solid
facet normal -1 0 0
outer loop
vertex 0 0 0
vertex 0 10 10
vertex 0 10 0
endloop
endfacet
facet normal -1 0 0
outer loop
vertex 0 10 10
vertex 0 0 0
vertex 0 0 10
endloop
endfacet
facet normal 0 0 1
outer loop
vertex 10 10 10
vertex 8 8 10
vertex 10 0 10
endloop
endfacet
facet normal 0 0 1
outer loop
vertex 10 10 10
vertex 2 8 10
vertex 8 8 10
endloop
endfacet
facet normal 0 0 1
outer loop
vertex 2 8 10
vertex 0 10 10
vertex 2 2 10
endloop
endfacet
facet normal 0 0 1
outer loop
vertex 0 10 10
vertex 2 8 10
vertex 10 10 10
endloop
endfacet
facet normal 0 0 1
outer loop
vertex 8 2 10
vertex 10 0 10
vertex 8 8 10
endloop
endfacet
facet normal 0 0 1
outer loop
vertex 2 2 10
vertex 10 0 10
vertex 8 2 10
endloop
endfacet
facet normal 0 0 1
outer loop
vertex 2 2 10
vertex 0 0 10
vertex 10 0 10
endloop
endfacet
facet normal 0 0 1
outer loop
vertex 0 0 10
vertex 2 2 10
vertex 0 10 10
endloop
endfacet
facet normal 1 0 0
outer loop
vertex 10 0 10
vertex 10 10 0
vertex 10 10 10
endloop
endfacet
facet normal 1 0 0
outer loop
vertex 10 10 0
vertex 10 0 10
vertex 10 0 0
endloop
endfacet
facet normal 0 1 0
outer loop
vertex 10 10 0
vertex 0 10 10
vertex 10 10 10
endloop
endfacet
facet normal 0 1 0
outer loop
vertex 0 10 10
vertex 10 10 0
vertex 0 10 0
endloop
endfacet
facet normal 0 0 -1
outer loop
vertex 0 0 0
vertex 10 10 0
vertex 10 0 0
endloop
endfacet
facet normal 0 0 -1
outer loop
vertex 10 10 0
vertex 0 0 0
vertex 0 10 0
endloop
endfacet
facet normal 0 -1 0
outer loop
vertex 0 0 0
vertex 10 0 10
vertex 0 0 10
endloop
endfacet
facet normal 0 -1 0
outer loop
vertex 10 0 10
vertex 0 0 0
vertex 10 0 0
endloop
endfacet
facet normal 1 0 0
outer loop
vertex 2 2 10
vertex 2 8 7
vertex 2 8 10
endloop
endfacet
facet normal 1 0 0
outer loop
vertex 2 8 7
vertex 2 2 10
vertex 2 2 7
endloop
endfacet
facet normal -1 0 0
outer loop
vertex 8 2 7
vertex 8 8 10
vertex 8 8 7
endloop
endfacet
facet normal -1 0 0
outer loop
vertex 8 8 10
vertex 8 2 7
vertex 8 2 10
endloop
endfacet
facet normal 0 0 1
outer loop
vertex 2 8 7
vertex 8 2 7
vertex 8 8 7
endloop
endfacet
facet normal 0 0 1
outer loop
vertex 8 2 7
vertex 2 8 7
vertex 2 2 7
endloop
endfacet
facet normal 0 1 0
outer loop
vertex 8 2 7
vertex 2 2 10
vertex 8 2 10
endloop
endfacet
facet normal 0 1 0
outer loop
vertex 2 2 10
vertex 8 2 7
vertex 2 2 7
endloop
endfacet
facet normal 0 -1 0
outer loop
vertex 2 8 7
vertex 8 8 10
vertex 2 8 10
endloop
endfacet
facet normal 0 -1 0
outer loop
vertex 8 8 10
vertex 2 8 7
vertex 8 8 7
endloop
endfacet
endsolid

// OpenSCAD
difference() {
  cube([10, 10, 10]);
  translate([2, 2, 7])
  cube([6,6, 3] );
}
